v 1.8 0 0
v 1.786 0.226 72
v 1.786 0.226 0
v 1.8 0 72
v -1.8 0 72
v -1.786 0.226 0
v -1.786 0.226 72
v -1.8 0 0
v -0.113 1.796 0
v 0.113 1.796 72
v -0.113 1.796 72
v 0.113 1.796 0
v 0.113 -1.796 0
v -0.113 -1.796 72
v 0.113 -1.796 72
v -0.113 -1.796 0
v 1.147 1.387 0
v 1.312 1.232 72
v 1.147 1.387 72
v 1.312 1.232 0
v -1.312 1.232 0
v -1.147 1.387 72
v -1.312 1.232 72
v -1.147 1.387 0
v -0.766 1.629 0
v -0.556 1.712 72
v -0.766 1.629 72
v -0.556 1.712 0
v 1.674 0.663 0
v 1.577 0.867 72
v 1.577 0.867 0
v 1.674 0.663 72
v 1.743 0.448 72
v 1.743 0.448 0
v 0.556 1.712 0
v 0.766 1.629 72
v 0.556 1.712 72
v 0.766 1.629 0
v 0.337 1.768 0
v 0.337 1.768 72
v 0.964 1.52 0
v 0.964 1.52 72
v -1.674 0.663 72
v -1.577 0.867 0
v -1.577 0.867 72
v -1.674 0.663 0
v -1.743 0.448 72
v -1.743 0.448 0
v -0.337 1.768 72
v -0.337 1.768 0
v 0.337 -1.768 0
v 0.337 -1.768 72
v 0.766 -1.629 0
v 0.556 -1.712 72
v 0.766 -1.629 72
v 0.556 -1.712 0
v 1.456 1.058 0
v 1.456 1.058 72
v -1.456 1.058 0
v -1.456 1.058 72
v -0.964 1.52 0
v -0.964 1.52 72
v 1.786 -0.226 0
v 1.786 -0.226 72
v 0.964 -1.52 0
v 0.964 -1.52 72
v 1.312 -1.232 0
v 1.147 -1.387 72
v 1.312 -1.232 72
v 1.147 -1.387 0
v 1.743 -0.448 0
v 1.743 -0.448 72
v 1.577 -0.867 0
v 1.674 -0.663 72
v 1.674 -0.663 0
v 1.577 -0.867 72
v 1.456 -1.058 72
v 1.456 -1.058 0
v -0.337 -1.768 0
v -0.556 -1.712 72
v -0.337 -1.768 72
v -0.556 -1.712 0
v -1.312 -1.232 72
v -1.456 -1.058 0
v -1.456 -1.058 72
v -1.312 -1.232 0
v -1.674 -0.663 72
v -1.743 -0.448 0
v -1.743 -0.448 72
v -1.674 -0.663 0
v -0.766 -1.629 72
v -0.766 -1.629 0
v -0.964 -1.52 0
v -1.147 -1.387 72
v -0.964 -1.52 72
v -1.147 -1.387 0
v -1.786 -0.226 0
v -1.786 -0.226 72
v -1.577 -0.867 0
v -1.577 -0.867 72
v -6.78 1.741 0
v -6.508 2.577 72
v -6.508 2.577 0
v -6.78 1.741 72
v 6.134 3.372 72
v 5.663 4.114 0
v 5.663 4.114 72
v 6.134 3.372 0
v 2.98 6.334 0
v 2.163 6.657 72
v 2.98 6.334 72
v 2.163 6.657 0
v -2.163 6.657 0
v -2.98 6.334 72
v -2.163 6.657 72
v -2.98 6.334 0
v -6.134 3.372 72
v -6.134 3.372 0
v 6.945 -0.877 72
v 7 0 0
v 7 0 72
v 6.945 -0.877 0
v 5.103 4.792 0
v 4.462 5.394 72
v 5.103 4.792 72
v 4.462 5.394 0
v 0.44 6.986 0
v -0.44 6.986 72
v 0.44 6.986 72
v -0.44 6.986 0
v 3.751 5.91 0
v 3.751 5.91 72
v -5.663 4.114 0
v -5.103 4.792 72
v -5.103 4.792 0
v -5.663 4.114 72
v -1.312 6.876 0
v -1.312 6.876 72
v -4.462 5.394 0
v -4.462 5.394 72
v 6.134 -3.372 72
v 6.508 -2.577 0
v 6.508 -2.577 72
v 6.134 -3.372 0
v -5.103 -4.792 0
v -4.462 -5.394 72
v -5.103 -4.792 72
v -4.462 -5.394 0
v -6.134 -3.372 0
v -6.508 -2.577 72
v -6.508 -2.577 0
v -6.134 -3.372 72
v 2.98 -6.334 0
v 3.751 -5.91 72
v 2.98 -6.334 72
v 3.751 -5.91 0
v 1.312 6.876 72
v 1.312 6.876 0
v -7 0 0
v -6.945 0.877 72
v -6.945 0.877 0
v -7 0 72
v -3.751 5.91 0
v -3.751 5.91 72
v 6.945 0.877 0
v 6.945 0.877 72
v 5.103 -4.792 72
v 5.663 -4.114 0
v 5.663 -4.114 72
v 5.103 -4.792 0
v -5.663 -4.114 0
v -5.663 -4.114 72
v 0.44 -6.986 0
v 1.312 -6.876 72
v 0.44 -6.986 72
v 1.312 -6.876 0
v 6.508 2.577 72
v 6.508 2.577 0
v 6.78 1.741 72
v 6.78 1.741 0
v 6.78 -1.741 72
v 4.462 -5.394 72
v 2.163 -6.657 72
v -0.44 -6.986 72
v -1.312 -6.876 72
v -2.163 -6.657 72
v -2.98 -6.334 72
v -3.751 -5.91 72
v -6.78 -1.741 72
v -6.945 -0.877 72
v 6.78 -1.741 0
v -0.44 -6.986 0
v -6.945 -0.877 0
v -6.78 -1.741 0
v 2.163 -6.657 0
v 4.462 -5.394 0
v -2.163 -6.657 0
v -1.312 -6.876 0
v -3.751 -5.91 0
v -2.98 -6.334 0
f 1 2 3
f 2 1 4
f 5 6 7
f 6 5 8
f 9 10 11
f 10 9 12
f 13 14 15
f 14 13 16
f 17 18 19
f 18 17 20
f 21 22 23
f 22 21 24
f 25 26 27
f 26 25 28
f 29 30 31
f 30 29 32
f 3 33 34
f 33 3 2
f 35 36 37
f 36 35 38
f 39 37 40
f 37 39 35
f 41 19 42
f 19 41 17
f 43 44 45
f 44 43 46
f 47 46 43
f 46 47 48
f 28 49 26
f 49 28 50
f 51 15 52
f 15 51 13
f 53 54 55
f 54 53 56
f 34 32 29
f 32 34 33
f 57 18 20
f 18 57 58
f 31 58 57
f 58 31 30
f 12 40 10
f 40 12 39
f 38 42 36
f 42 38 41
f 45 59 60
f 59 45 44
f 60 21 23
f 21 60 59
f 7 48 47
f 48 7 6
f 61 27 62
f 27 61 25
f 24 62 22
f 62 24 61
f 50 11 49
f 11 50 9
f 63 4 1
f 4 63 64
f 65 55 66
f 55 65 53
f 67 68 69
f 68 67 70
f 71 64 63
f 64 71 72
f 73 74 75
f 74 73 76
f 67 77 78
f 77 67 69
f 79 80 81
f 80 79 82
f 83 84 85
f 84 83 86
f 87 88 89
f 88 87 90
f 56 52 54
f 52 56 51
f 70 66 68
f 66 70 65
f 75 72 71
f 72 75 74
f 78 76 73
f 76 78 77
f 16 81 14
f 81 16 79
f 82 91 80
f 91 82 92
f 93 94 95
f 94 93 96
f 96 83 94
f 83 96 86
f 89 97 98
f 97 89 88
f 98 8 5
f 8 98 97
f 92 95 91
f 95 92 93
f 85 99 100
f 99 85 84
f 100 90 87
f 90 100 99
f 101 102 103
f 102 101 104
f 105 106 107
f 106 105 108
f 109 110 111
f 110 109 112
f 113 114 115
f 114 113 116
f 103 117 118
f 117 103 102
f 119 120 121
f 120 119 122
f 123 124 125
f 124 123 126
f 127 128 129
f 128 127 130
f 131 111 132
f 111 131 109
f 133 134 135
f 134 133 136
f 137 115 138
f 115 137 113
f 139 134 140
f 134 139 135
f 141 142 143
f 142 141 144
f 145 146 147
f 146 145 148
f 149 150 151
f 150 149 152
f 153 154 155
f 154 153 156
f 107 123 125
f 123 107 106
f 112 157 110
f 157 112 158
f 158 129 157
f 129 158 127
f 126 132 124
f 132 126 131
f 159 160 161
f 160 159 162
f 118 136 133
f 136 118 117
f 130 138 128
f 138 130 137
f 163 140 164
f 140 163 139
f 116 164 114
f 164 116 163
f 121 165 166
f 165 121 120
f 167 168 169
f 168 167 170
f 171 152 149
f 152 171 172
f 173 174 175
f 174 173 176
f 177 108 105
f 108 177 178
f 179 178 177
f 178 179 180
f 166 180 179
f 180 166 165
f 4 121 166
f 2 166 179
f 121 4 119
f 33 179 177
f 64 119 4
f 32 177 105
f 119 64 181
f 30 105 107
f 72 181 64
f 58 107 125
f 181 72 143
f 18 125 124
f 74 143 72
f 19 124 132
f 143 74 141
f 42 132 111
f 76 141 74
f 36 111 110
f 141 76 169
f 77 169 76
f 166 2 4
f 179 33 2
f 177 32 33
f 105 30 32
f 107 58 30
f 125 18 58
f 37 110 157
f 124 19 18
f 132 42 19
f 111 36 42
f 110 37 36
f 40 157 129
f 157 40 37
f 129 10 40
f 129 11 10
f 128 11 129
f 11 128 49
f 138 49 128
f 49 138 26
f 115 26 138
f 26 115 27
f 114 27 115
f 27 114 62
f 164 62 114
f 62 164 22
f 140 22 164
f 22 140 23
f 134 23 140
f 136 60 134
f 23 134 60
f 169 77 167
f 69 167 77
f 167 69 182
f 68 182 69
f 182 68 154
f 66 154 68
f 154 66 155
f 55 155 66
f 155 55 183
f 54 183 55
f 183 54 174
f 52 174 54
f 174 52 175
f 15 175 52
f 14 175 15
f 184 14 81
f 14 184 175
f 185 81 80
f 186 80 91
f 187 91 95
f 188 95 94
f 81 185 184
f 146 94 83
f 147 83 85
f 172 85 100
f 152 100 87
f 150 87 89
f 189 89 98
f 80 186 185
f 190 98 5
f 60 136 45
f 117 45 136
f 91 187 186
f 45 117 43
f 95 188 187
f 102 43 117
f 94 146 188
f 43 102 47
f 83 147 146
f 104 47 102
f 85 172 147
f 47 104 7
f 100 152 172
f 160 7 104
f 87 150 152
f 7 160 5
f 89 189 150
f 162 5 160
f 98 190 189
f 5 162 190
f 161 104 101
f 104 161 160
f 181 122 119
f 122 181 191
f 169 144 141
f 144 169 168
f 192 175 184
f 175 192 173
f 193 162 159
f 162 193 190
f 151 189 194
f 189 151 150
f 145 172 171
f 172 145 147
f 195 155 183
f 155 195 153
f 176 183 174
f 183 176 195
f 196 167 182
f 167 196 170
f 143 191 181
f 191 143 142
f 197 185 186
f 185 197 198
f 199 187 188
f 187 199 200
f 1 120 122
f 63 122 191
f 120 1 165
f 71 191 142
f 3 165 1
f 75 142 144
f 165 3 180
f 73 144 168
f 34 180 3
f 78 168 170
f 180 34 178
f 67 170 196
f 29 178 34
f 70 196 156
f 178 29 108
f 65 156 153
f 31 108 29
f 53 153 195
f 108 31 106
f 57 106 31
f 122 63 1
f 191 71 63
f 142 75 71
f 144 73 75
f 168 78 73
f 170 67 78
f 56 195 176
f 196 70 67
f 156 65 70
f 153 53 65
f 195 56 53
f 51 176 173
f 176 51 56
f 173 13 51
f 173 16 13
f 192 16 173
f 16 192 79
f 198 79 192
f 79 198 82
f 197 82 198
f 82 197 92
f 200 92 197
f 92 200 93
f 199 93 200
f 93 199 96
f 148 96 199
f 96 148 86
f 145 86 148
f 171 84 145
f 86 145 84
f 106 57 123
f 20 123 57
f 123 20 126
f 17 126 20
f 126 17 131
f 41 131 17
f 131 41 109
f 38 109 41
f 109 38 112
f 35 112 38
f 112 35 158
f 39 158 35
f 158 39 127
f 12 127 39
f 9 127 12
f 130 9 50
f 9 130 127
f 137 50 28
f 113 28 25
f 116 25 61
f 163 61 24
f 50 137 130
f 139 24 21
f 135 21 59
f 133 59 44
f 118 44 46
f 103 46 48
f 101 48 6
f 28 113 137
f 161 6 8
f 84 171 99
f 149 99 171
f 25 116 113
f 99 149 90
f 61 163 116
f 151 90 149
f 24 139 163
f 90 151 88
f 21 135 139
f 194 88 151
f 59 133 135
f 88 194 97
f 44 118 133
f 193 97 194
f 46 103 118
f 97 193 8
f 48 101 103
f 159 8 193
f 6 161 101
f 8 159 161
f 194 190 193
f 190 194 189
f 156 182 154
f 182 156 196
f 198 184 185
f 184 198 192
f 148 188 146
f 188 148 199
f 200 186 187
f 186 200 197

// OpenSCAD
$fn = 50;


difference() {
	union() {
		cylinder(h = 72, r = 7.0000000000);
	}
	union() {
		translate(v = [0.0000000000, 0.0000000000, -100.0000000000]) {
			cylinder(h = 200, r = 1.8000000000);
		}
		cylinder(h = 72, r = 1.8000000000);
		cylinder(h = 72, r = 1.8000000000);
		cylinder(h = 72, r = 1.8000000000);
	}
}
